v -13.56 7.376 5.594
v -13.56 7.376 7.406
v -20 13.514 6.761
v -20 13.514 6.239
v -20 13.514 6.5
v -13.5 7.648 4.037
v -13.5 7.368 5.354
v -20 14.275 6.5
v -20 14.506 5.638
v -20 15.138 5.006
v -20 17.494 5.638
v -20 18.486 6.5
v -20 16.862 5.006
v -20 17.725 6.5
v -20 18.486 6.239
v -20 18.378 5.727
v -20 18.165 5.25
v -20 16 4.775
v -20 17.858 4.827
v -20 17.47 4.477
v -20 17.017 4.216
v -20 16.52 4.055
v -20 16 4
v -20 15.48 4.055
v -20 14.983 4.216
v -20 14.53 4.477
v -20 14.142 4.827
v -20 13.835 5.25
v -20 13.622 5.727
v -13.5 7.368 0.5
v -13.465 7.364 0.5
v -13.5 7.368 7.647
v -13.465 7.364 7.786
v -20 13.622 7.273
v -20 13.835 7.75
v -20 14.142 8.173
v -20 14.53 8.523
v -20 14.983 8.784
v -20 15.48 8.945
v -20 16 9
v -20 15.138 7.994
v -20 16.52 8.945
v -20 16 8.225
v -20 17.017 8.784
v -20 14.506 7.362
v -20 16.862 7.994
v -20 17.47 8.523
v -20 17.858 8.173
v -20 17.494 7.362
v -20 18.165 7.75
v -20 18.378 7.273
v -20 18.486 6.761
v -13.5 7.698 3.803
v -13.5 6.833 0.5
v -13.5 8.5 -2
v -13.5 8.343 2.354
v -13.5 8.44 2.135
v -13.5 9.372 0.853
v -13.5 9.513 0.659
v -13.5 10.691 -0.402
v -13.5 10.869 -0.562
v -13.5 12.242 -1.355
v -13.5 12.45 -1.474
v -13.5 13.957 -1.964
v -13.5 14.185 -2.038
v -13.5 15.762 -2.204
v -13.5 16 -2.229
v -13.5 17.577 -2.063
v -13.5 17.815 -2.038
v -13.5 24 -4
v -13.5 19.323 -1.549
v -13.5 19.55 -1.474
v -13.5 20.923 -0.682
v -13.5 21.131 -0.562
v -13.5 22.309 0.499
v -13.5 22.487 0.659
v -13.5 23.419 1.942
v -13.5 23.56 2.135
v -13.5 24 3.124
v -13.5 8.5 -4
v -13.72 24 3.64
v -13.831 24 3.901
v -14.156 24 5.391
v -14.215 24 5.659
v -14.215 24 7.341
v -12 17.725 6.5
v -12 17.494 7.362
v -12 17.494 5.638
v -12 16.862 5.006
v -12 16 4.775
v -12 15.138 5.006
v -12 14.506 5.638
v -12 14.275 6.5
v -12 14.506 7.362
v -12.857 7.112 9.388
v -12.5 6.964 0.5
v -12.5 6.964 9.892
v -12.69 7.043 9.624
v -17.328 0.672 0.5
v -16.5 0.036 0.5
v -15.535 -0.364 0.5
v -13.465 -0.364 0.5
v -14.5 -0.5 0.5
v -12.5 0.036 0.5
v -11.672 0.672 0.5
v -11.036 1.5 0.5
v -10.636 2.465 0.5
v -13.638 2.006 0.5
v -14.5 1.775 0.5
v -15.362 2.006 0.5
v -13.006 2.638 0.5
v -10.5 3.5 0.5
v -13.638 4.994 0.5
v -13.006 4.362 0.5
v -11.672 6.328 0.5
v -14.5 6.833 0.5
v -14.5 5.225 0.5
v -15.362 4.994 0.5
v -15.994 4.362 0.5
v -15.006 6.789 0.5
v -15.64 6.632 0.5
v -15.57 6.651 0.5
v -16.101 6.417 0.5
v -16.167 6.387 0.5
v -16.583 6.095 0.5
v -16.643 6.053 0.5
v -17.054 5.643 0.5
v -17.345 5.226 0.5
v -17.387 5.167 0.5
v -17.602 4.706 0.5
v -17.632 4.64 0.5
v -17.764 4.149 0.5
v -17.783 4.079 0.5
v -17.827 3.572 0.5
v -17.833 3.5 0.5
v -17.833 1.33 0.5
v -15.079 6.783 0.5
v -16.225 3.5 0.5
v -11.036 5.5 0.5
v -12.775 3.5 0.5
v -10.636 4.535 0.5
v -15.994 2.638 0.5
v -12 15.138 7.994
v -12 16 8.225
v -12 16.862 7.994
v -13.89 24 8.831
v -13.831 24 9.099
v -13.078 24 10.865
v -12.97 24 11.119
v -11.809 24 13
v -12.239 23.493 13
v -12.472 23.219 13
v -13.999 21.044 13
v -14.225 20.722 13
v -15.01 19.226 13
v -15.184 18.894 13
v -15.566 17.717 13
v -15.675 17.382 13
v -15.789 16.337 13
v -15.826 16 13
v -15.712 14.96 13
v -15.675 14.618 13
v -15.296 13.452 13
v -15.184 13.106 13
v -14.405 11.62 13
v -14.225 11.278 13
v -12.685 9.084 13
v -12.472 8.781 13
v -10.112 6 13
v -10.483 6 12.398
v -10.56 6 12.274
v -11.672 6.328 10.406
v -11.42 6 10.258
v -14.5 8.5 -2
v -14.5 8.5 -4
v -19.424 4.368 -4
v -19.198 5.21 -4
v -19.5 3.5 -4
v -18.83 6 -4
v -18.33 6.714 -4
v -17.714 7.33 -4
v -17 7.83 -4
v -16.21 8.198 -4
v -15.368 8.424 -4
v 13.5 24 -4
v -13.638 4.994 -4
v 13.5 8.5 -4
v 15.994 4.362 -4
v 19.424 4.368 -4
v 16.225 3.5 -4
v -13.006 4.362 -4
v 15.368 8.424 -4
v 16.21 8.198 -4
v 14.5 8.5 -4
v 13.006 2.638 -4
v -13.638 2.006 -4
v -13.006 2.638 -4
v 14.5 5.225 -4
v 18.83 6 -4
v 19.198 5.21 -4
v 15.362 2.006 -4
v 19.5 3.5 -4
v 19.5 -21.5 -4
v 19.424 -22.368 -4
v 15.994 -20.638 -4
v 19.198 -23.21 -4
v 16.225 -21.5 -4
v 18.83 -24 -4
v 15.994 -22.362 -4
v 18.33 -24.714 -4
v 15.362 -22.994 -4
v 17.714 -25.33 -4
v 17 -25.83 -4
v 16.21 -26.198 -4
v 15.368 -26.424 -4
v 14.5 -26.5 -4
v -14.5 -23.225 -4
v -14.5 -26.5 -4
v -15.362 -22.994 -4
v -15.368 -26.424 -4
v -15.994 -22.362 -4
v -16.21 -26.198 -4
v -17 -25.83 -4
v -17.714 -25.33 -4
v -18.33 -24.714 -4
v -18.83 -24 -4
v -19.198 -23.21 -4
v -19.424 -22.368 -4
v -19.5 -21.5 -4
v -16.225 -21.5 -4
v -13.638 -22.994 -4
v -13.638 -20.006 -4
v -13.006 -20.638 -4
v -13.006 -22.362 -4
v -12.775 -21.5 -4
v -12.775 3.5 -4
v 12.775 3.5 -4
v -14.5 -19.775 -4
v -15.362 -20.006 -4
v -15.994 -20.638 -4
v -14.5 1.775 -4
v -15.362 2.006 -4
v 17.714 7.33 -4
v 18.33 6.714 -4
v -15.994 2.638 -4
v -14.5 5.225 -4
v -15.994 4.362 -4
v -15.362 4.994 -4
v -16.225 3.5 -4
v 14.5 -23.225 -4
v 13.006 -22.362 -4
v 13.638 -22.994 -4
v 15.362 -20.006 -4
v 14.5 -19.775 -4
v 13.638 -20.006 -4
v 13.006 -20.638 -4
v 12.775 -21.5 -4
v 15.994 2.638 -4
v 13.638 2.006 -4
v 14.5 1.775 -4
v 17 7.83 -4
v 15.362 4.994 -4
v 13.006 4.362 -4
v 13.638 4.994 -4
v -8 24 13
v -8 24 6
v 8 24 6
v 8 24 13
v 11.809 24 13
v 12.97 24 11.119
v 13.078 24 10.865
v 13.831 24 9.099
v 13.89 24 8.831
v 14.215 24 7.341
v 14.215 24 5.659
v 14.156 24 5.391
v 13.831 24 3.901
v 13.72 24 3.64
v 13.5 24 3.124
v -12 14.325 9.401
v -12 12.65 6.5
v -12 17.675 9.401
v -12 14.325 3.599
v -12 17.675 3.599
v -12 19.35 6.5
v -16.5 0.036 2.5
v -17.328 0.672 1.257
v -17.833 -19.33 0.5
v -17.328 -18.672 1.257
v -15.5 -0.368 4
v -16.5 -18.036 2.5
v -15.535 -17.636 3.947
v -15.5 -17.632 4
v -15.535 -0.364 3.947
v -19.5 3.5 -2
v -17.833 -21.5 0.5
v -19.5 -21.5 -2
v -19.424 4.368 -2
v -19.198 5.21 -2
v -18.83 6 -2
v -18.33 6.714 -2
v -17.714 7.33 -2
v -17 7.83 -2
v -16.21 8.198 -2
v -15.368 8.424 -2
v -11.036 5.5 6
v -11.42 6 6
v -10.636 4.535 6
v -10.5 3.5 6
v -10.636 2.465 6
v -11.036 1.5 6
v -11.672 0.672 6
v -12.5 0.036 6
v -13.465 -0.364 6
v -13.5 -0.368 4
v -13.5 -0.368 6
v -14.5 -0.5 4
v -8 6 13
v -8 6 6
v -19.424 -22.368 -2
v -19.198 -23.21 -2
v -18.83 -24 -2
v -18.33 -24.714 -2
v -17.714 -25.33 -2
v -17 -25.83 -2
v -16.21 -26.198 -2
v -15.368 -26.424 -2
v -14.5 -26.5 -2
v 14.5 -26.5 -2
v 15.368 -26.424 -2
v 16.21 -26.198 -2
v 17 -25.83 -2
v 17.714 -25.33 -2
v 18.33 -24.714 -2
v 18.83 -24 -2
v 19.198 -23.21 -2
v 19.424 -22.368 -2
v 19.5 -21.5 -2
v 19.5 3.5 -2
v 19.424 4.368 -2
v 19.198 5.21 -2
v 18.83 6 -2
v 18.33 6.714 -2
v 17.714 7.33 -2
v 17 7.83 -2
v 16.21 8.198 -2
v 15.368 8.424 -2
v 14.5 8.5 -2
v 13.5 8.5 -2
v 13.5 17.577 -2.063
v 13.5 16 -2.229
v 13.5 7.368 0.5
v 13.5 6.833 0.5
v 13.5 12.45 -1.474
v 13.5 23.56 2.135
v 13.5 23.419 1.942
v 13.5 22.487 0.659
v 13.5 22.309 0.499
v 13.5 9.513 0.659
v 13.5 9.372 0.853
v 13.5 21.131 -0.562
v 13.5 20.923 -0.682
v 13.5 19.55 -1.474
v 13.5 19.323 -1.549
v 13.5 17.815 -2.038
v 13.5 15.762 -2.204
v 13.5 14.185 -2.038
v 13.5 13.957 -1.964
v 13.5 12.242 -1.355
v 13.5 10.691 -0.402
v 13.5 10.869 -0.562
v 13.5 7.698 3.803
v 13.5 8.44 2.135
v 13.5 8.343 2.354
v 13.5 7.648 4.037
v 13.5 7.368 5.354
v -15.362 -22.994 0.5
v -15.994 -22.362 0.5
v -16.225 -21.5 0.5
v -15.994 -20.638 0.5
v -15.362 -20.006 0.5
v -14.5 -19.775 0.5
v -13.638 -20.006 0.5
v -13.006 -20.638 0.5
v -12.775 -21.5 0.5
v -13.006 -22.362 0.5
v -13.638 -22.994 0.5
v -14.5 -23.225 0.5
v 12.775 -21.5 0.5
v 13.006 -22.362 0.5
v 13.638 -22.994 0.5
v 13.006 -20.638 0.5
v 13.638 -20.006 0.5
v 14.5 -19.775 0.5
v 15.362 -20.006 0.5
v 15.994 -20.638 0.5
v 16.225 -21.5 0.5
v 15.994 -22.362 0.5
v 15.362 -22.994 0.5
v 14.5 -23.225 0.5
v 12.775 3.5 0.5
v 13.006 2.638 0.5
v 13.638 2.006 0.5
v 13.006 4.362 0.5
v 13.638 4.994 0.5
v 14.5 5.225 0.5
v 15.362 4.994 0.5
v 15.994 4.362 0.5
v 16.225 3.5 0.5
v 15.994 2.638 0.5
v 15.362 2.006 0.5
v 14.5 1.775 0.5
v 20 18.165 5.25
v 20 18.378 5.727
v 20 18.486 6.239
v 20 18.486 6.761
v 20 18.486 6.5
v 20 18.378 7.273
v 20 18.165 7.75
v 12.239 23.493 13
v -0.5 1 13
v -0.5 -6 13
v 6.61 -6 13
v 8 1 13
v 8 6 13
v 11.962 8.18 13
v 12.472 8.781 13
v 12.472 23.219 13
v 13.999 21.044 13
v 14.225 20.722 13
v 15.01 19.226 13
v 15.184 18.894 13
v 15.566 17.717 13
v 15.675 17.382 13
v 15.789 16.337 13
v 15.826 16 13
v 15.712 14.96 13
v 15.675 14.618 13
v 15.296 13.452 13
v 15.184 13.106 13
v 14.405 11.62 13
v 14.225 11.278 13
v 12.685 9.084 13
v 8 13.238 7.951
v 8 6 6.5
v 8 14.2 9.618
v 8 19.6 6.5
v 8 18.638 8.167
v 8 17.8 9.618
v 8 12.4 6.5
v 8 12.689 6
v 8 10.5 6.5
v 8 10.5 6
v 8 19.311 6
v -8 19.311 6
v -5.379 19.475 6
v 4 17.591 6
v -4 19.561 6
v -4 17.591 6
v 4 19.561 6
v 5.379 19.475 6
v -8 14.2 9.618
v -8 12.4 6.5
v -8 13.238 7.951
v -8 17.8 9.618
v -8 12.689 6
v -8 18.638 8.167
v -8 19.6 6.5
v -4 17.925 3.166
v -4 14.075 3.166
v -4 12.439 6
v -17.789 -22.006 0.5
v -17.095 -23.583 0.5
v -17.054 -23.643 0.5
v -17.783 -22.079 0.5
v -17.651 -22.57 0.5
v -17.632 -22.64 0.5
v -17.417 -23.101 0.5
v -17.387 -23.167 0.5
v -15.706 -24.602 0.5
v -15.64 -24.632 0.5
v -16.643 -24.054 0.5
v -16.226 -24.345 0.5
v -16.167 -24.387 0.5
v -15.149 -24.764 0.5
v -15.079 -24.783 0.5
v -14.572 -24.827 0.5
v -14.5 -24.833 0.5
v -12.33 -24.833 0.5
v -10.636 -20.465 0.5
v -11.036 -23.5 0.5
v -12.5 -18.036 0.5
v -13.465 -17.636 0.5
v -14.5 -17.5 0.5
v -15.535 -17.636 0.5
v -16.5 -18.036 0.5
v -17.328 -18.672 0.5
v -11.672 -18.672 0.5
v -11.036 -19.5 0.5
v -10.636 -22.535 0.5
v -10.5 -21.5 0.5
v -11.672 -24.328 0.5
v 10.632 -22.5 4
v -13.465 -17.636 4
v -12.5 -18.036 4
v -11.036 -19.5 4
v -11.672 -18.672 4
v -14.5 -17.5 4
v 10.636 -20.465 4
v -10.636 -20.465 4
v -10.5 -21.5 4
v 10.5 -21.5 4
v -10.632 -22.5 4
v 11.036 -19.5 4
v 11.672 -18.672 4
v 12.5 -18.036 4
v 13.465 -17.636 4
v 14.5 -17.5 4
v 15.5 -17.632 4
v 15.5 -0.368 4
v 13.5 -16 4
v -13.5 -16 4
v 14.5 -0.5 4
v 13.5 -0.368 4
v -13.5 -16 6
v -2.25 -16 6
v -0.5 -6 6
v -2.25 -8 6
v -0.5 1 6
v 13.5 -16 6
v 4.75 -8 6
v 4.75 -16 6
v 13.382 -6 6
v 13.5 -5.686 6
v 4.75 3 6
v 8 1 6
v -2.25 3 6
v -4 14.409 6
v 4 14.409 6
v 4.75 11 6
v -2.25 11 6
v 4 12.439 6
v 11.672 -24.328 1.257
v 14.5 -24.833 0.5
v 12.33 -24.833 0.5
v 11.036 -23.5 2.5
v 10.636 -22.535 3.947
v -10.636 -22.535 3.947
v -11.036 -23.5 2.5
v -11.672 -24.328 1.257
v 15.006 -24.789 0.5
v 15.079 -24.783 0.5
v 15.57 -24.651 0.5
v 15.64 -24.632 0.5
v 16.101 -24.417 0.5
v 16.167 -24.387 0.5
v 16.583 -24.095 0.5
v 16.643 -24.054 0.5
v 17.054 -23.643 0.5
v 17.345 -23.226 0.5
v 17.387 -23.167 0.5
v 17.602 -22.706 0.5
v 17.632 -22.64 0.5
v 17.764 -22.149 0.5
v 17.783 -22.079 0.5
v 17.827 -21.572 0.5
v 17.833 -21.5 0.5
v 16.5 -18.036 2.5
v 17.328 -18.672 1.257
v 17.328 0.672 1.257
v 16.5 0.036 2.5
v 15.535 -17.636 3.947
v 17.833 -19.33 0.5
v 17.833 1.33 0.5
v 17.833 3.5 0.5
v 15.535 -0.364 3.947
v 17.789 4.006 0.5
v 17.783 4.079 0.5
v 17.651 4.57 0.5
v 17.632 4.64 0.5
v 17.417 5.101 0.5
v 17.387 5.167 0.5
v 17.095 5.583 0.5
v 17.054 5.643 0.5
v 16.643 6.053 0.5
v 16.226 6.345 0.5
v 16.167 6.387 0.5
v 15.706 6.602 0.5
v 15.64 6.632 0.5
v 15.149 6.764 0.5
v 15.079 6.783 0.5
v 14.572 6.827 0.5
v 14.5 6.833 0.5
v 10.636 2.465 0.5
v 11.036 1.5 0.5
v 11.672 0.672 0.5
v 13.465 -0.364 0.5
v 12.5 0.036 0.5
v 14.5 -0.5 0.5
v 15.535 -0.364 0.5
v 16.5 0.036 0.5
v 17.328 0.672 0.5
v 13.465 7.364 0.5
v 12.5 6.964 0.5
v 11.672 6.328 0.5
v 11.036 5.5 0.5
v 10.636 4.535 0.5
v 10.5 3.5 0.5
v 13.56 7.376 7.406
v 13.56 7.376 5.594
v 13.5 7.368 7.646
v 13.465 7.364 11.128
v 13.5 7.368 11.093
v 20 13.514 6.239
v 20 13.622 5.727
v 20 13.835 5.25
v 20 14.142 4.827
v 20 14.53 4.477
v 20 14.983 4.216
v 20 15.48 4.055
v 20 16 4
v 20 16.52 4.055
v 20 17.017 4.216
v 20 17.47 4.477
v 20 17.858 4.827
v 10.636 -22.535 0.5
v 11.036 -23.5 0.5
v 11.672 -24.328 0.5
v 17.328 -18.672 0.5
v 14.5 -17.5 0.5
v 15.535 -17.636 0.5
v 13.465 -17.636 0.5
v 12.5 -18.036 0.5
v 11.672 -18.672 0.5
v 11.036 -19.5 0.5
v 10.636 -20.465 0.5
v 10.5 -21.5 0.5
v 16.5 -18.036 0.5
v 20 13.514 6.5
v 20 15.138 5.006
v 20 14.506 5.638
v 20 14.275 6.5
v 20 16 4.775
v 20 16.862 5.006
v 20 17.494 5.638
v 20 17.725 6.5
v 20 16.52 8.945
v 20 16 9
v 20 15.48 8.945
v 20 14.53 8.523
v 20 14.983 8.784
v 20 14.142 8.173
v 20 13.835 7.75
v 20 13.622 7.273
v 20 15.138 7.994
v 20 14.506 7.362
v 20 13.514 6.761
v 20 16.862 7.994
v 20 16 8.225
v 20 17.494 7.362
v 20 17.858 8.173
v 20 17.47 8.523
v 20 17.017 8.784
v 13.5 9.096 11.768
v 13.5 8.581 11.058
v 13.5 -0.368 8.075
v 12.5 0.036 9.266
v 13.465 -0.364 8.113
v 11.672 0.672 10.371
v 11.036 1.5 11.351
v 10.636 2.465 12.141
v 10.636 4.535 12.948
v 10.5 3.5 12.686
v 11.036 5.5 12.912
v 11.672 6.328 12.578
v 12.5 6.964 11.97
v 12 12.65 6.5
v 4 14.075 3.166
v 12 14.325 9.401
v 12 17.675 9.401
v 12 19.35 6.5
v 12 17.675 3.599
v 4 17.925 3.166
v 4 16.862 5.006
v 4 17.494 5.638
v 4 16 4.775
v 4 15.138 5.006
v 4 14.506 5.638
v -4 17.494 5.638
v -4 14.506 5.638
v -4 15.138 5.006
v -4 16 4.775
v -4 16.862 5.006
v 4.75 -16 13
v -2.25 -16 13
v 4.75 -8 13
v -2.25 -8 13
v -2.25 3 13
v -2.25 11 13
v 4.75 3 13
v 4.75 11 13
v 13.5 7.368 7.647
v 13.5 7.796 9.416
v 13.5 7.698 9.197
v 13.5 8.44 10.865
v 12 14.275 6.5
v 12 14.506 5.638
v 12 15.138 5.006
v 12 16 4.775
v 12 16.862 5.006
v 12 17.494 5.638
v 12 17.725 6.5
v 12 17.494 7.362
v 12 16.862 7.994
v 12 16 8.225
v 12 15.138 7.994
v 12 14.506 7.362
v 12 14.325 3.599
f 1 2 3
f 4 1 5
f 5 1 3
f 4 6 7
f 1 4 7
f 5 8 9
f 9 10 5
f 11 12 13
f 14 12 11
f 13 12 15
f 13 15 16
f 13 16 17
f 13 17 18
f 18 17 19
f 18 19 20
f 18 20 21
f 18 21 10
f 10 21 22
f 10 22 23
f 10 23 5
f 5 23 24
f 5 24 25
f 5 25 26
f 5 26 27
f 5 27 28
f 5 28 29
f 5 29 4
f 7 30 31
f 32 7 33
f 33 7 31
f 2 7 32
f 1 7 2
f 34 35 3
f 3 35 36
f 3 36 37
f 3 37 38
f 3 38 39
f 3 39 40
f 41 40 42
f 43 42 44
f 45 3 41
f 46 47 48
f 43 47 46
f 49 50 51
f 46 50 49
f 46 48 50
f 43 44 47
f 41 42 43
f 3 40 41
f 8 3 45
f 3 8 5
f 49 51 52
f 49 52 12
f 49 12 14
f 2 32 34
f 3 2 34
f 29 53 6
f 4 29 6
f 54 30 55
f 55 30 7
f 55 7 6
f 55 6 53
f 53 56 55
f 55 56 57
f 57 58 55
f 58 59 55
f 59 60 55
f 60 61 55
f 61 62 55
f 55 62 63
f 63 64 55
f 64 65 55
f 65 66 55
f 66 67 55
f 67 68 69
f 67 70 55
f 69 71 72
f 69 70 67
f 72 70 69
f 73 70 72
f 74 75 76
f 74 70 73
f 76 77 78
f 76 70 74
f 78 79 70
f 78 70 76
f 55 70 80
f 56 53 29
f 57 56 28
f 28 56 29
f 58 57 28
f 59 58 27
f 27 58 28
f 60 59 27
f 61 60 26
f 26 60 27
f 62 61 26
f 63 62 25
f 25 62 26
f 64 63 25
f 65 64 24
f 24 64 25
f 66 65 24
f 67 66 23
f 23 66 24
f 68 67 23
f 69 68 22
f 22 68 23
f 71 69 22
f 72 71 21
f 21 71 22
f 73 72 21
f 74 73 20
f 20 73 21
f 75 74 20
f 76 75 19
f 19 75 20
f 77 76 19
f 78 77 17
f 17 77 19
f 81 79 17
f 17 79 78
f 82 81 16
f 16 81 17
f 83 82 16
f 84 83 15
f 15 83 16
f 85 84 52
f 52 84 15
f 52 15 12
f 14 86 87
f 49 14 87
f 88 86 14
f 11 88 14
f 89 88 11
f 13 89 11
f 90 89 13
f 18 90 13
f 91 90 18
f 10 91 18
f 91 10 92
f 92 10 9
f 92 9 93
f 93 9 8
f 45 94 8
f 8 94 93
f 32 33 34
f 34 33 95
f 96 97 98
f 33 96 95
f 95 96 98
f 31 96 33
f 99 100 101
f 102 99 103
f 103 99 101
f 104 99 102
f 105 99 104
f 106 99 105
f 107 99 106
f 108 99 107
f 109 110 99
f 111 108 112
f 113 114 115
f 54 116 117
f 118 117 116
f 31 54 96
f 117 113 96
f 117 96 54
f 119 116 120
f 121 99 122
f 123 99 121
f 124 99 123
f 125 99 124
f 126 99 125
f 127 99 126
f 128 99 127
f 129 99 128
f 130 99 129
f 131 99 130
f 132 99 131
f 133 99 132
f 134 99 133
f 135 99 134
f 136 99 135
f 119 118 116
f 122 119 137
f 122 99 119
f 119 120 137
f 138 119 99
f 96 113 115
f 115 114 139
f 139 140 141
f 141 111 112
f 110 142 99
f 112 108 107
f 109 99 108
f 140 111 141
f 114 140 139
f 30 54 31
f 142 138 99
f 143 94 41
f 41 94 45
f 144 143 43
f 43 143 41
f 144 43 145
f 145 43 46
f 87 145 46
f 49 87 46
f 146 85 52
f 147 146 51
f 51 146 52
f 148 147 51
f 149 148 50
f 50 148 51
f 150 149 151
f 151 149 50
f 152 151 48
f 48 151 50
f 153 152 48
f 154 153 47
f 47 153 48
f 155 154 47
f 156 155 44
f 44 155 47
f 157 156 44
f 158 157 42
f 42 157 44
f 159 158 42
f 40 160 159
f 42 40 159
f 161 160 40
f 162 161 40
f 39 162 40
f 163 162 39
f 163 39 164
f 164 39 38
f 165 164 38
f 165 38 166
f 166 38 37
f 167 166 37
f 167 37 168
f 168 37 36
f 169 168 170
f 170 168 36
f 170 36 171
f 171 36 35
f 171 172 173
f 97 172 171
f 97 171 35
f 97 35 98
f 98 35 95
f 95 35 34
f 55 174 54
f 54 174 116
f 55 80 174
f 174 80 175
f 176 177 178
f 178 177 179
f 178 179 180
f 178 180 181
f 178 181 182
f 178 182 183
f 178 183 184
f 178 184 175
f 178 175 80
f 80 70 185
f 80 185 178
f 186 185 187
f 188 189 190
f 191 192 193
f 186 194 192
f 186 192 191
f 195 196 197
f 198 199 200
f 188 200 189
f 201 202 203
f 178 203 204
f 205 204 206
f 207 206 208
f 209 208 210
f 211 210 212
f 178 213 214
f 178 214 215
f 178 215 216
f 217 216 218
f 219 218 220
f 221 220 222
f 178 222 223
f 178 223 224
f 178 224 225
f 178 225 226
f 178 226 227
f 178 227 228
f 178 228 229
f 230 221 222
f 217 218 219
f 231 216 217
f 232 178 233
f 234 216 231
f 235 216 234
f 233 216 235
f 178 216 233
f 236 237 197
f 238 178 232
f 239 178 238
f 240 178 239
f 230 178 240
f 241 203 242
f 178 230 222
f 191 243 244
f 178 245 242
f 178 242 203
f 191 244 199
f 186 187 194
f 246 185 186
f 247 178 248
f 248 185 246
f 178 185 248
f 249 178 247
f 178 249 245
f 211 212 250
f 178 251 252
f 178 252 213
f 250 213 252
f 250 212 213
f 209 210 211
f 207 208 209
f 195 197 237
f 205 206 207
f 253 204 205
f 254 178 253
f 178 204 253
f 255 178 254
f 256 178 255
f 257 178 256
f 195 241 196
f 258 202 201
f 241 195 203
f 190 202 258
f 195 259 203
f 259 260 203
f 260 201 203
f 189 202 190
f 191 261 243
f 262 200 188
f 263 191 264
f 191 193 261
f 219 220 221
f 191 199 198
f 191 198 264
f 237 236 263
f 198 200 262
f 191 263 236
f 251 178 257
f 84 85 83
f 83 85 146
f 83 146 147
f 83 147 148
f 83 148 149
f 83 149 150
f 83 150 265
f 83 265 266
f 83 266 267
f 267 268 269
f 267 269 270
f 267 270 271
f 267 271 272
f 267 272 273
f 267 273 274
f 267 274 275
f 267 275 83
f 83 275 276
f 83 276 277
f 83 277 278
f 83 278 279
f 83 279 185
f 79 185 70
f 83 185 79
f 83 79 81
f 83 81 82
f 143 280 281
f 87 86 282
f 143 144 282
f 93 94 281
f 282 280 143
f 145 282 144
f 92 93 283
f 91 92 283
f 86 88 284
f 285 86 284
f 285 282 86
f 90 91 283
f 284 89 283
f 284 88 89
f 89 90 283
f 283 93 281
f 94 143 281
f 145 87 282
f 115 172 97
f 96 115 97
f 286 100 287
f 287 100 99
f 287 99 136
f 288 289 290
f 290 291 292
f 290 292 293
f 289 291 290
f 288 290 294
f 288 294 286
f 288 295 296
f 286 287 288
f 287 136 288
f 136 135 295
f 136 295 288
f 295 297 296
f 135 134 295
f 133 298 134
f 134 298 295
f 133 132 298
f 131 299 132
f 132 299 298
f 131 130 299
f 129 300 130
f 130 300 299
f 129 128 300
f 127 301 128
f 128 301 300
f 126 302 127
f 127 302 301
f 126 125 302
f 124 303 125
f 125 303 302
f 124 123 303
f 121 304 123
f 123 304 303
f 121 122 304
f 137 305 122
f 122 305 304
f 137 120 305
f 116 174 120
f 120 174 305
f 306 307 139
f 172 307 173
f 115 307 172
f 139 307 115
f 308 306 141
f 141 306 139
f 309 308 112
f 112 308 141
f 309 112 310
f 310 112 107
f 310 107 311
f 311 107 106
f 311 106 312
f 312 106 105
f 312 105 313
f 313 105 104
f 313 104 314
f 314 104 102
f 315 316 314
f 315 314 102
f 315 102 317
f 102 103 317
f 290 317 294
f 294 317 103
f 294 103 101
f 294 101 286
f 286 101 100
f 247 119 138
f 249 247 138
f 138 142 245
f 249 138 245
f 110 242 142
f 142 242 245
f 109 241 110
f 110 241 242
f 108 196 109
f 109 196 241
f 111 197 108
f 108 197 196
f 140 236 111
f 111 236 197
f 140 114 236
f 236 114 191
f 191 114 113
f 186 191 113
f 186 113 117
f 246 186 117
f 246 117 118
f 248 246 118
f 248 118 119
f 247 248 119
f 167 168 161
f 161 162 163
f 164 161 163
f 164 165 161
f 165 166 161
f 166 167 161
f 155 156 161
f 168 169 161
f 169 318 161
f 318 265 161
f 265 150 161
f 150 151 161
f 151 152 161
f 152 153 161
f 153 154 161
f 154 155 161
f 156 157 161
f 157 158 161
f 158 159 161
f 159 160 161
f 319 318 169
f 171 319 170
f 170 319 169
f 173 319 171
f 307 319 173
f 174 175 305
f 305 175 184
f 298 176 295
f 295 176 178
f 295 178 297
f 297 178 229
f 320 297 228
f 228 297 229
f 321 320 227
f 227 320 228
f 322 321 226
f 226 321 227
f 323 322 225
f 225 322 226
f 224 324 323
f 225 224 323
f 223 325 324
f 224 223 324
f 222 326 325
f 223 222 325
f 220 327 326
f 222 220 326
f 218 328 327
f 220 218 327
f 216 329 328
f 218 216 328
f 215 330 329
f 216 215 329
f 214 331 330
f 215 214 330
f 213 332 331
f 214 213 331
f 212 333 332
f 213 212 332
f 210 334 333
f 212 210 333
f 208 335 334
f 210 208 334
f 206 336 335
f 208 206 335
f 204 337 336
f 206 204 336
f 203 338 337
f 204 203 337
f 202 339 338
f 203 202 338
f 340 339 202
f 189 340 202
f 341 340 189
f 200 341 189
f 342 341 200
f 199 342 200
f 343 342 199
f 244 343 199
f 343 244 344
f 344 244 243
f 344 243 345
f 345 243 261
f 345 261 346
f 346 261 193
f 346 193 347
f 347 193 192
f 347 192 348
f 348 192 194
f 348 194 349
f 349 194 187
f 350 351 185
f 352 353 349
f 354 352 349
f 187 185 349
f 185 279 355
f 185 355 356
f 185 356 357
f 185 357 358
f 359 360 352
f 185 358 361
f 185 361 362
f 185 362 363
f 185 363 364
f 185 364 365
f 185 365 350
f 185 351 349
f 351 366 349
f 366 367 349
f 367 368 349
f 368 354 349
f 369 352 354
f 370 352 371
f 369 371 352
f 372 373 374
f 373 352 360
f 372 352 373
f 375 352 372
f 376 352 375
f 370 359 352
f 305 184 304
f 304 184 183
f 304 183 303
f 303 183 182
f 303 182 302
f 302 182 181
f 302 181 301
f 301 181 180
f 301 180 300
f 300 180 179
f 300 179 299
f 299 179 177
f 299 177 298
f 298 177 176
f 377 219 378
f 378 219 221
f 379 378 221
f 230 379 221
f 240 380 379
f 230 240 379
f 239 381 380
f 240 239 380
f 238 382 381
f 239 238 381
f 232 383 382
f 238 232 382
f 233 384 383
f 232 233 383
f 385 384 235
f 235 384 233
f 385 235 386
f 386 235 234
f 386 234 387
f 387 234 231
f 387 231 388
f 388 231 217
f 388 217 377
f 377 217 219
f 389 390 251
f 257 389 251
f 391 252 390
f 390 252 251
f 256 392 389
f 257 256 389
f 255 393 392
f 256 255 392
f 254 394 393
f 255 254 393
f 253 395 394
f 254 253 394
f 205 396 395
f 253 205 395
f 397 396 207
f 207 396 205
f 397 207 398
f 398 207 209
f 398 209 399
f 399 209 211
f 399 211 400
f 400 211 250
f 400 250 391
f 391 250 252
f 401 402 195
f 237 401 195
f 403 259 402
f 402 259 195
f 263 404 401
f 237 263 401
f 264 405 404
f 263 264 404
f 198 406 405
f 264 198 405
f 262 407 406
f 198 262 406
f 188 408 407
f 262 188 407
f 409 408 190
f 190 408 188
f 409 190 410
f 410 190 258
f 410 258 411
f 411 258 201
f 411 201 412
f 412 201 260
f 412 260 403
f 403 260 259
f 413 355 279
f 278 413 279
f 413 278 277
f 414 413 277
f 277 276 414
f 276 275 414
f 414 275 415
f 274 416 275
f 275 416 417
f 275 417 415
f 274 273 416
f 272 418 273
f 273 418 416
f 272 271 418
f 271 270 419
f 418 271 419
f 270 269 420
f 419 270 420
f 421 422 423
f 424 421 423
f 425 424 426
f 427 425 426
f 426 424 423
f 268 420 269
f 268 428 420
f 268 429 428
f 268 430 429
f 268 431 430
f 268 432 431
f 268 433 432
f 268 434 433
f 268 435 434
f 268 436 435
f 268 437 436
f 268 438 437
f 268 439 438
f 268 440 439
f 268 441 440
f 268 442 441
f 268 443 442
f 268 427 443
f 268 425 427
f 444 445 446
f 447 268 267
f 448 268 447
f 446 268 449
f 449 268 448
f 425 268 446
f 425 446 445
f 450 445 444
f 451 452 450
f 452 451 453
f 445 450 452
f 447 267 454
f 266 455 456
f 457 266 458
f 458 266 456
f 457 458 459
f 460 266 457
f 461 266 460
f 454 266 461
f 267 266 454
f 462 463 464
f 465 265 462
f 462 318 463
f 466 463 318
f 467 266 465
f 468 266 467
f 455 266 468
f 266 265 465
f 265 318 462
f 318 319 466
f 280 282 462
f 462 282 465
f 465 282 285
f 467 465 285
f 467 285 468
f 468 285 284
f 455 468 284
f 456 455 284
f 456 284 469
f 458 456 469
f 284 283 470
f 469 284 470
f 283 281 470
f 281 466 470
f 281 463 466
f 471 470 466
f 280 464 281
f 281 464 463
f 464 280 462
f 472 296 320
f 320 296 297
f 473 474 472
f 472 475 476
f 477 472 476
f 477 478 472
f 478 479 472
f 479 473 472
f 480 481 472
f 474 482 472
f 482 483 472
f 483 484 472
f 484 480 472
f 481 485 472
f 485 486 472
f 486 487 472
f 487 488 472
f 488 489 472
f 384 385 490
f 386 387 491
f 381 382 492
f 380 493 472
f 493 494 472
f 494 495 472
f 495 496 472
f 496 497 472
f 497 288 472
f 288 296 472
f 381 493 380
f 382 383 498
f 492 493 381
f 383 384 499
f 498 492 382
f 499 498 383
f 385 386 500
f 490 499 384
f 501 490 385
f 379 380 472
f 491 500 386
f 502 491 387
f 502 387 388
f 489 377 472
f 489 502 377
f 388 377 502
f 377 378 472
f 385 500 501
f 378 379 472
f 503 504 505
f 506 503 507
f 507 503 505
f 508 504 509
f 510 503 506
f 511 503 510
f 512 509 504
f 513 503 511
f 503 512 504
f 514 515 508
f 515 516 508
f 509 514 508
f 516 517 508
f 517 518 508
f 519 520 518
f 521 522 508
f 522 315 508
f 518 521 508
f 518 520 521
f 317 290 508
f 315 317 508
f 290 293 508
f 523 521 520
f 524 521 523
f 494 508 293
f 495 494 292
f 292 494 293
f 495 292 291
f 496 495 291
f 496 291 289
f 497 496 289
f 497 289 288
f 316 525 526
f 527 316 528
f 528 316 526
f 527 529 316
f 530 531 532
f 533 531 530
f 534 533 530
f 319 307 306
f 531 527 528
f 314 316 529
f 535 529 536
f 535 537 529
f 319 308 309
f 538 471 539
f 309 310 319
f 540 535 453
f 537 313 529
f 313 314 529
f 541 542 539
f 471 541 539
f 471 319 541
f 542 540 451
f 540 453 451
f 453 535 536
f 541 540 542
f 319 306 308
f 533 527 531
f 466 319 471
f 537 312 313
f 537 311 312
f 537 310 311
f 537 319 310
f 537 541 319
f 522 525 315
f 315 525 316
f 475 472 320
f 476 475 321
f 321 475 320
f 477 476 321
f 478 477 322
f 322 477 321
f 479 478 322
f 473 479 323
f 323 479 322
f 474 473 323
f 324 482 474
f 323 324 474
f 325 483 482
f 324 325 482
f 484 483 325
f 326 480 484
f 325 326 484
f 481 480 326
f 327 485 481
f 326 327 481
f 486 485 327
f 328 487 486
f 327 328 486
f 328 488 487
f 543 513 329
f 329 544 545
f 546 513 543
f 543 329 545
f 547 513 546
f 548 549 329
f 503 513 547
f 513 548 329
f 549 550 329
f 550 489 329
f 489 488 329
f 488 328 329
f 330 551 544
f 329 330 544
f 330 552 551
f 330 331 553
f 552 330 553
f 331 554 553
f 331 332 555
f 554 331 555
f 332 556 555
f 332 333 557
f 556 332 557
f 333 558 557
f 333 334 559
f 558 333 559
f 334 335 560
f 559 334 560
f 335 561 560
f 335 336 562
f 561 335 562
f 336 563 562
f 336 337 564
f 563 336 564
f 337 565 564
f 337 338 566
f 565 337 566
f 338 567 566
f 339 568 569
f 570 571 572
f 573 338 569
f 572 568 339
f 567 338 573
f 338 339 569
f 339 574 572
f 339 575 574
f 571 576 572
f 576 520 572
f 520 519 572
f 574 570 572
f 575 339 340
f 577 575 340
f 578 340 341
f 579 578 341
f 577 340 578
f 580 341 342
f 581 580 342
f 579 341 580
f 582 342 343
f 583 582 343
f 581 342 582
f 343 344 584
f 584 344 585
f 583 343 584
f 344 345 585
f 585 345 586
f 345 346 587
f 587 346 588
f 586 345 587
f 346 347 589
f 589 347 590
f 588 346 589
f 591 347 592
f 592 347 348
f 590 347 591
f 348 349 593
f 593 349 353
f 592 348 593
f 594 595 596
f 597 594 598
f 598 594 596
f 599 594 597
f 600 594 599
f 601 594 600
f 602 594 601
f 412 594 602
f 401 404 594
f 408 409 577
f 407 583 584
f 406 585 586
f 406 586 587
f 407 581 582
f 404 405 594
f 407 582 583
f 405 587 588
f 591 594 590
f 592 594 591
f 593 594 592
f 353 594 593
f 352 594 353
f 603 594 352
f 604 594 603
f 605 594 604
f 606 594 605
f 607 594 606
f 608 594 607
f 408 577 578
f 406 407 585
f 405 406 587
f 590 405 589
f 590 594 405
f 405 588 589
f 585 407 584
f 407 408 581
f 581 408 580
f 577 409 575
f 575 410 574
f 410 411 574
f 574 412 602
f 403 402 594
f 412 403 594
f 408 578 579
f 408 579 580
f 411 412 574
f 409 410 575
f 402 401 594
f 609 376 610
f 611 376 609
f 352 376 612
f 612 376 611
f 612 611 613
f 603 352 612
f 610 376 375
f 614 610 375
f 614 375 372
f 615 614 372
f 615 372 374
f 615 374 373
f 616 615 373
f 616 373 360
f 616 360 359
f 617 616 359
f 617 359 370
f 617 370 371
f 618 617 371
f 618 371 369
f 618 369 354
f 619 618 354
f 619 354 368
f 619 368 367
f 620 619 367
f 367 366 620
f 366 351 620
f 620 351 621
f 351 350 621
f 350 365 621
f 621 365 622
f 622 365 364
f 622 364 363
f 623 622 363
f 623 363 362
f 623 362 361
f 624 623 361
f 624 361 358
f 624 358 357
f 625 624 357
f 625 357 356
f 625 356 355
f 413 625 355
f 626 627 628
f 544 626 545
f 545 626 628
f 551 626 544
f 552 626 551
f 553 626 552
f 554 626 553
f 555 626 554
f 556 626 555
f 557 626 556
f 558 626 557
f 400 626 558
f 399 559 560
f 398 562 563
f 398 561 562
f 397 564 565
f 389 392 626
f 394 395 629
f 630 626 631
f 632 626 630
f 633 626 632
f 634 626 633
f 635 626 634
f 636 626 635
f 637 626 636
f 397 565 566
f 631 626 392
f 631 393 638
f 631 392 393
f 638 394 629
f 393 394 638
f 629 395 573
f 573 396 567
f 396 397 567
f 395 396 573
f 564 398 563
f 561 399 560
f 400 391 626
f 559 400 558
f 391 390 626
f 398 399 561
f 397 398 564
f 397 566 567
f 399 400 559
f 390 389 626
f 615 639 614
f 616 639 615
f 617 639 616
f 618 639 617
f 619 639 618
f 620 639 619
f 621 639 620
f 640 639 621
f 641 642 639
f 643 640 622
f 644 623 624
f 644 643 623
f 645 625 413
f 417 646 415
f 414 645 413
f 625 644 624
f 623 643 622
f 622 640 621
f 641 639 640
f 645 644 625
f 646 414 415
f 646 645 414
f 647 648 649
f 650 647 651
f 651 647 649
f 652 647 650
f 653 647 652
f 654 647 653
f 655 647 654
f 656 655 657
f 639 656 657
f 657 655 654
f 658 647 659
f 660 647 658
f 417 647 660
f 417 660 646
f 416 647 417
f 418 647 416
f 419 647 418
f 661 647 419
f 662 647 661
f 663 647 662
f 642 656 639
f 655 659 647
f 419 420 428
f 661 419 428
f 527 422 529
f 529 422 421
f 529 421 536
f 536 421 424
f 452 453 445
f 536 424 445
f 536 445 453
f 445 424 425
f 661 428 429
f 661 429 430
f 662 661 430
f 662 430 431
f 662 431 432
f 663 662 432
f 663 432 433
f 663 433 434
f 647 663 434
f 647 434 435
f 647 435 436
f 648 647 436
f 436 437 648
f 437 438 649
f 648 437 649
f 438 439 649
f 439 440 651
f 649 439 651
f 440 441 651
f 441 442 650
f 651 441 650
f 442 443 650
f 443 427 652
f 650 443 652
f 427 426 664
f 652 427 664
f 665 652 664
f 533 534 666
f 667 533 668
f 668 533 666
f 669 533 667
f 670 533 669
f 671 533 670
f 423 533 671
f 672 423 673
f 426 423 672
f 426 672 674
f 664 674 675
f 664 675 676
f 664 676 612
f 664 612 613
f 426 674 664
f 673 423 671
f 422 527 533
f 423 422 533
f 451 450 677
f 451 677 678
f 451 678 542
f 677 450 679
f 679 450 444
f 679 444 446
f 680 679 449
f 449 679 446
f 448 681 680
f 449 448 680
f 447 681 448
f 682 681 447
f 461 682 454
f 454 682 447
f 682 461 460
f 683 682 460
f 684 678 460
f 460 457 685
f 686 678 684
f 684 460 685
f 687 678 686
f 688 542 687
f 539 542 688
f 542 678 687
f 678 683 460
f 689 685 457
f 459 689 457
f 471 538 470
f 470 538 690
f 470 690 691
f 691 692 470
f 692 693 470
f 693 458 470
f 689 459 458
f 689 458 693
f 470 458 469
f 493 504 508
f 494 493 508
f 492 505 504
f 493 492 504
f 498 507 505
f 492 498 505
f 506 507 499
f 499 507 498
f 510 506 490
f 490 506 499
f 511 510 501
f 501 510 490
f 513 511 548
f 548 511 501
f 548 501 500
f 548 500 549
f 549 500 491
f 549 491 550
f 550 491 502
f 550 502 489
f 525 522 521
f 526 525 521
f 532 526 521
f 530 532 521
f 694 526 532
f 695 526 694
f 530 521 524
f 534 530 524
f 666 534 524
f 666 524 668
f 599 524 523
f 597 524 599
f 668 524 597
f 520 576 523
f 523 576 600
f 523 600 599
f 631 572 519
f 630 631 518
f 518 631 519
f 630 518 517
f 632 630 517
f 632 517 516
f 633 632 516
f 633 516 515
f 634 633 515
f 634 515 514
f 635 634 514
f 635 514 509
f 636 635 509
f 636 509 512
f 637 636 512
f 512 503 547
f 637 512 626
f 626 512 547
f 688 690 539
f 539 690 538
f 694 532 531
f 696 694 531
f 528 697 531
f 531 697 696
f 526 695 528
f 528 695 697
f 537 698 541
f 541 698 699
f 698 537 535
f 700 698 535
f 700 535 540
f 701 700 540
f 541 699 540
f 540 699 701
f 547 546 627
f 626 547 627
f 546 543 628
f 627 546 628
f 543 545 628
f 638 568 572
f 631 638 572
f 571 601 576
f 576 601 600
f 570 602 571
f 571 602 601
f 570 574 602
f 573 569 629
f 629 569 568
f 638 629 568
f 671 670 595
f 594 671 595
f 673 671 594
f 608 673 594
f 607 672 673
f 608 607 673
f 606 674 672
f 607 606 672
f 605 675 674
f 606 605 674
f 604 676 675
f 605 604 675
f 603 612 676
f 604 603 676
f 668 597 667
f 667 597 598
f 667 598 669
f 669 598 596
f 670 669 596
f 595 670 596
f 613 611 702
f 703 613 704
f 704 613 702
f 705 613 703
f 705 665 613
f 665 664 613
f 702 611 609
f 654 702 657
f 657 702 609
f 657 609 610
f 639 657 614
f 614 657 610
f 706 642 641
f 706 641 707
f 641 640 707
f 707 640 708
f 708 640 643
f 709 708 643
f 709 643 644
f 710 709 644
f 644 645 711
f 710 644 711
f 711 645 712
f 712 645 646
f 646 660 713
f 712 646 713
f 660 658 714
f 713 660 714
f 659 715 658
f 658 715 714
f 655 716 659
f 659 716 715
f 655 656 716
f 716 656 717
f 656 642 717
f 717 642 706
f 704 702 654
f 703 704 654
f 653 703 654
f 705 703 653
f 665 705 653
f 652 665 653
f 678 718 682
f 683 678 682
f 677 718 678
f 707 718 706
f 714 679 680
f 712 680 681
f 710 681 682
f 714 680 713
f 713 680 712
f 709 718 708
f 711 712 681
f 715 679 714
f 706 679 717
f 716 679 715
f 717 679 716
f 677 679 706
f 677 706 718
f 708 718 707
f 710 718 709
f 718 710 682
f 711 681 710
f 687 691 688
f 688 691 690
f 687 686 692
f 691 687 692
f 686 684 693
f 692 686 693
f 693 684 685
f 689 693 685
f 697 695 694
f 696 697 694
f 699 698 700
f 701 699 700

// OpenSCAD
// file: configuration.scad
// Increase this if your slicer or printer make holes too tight.
extra_radius = 0.1;

// OD = outside diameter, corner to corner.
m3_nut_od = 6.1;
m3_nut_radius = m3_nut_od/2 + 0.2 + extra_radius;

// Major diameter of metric 3mm thread.
m3_major = 2.85;
m3_radius = m3_major/2 + extra_radius;
m3_wide_radius = m3_major/2 + extra_radius + 0.2;

// NEMA17 stepper motors.
motor_shaft_diameter = 5;
motor_shaft_radius = motor_shaft_diameter/2 + extra_radius;

// Frame brackets.
thickness = 3.6;
// main file
include <configuration.scad>;

separation = 40;
thickness = 6;

horn_thickness = 13;
horn_x = 8;

belt_width = 5;
belt_x = 5.6;
belt_z = 7;

plate_thickness = 7;
plate_y = -9;
plate_w = 29;
plate_h = 25;
outside_radius = 5;

module plate(h) {
  minkowski() {
    cube([plate_w, plate_h, 2], center=true);
    cylinder(r1=outside_radius, r2=1, h=6, $fn=36);
  }
}

module carriage() {
  // Timing belt (up and down).
  translate([-belt_x, 0, belt_z + belt_width/2]) %
    cube([1.7, 100, belt_width], center=true);
  translate([belt_x, 0, belt_z + belt_width/2]) %
    cube([1.7, 100, belt_width], center=true);
  difference() {
    union() {
      translate([0, plate_y, -3])
        plate(plate_thickness);
      // Main body.
      translate([0, 4, thickness/2-2])
        cube([27, 40, thickness+4], center=true);
      // Ball joint mount horns.
      for (x = [-1, 1]) {
        scale([x, 1, 1]) intersection() {
          translate([0, 15, horn_thickness/2-2])
            cube([separation, 18, horn_thickness+4], center=true);
          translate([horn_x, 16, horn_thickness/2]) rotate([0, 90, 0])
            cylinder(r1=14, r2=2.5, h=separation/2-horn_x);
        }
      }
      // Belt clamps.
      difference() {
        union() {
          translate([6.5, -2.5, horn_thickness/2+1])
            cube([14, 7, horn_thickness-2], center=true);
          translate([10.75, 2.5, horn_thickness/2+1])
            cube([5.5, 16, horn_thickness-2], center=true);
        }
        // Avoid touching diagonal push rods (carbon tube).
        translate([20, -10, 12.5]) rotate([35, 35, 30])
          cube([40, 40, 20], center=true);
      }
      for (y = [-12, 7]) {
        translate([1.25, y, horn_thickness/2+1])
          cube([7, 8, horn_thickness-2], center=true);
      }
    }
    // Screws for linear slider.
    for (x = [-plate_w/2, plate_w/2]) {
      for (y = [-plate_h/2, plate_h/2]) {
        translate([x, y+plate_y, 0]) #
          cylinder(r=m3_wide_radius, h=30, center=true, $fn=12);
        translate([x, y+plate_y, 0.5]) #
          cylinder(r=4, h=30, $fn=24);
      }
    }
    // Screws for ball joints.
    translate([0, 16, horn_thickness/2]) rotate([0, 90, 0]) #
      cylinder(r=m3_wide_radius, h=60, center=true, $fn=12);
    // Lock nuts for ball joints.
    for (x = [-1, 1]) {
      scale([x, 1, 1]) intersection() {
        translate([horn_x, 16, horn_thickness/2]) rotate([90, 0, -90])
          cylinder(r1=m3_nut_radius, r2=m3_nut_radius+0.5, h=8,
                   center=true, $fn=6);
      }
    }
  }
}

carriage();
